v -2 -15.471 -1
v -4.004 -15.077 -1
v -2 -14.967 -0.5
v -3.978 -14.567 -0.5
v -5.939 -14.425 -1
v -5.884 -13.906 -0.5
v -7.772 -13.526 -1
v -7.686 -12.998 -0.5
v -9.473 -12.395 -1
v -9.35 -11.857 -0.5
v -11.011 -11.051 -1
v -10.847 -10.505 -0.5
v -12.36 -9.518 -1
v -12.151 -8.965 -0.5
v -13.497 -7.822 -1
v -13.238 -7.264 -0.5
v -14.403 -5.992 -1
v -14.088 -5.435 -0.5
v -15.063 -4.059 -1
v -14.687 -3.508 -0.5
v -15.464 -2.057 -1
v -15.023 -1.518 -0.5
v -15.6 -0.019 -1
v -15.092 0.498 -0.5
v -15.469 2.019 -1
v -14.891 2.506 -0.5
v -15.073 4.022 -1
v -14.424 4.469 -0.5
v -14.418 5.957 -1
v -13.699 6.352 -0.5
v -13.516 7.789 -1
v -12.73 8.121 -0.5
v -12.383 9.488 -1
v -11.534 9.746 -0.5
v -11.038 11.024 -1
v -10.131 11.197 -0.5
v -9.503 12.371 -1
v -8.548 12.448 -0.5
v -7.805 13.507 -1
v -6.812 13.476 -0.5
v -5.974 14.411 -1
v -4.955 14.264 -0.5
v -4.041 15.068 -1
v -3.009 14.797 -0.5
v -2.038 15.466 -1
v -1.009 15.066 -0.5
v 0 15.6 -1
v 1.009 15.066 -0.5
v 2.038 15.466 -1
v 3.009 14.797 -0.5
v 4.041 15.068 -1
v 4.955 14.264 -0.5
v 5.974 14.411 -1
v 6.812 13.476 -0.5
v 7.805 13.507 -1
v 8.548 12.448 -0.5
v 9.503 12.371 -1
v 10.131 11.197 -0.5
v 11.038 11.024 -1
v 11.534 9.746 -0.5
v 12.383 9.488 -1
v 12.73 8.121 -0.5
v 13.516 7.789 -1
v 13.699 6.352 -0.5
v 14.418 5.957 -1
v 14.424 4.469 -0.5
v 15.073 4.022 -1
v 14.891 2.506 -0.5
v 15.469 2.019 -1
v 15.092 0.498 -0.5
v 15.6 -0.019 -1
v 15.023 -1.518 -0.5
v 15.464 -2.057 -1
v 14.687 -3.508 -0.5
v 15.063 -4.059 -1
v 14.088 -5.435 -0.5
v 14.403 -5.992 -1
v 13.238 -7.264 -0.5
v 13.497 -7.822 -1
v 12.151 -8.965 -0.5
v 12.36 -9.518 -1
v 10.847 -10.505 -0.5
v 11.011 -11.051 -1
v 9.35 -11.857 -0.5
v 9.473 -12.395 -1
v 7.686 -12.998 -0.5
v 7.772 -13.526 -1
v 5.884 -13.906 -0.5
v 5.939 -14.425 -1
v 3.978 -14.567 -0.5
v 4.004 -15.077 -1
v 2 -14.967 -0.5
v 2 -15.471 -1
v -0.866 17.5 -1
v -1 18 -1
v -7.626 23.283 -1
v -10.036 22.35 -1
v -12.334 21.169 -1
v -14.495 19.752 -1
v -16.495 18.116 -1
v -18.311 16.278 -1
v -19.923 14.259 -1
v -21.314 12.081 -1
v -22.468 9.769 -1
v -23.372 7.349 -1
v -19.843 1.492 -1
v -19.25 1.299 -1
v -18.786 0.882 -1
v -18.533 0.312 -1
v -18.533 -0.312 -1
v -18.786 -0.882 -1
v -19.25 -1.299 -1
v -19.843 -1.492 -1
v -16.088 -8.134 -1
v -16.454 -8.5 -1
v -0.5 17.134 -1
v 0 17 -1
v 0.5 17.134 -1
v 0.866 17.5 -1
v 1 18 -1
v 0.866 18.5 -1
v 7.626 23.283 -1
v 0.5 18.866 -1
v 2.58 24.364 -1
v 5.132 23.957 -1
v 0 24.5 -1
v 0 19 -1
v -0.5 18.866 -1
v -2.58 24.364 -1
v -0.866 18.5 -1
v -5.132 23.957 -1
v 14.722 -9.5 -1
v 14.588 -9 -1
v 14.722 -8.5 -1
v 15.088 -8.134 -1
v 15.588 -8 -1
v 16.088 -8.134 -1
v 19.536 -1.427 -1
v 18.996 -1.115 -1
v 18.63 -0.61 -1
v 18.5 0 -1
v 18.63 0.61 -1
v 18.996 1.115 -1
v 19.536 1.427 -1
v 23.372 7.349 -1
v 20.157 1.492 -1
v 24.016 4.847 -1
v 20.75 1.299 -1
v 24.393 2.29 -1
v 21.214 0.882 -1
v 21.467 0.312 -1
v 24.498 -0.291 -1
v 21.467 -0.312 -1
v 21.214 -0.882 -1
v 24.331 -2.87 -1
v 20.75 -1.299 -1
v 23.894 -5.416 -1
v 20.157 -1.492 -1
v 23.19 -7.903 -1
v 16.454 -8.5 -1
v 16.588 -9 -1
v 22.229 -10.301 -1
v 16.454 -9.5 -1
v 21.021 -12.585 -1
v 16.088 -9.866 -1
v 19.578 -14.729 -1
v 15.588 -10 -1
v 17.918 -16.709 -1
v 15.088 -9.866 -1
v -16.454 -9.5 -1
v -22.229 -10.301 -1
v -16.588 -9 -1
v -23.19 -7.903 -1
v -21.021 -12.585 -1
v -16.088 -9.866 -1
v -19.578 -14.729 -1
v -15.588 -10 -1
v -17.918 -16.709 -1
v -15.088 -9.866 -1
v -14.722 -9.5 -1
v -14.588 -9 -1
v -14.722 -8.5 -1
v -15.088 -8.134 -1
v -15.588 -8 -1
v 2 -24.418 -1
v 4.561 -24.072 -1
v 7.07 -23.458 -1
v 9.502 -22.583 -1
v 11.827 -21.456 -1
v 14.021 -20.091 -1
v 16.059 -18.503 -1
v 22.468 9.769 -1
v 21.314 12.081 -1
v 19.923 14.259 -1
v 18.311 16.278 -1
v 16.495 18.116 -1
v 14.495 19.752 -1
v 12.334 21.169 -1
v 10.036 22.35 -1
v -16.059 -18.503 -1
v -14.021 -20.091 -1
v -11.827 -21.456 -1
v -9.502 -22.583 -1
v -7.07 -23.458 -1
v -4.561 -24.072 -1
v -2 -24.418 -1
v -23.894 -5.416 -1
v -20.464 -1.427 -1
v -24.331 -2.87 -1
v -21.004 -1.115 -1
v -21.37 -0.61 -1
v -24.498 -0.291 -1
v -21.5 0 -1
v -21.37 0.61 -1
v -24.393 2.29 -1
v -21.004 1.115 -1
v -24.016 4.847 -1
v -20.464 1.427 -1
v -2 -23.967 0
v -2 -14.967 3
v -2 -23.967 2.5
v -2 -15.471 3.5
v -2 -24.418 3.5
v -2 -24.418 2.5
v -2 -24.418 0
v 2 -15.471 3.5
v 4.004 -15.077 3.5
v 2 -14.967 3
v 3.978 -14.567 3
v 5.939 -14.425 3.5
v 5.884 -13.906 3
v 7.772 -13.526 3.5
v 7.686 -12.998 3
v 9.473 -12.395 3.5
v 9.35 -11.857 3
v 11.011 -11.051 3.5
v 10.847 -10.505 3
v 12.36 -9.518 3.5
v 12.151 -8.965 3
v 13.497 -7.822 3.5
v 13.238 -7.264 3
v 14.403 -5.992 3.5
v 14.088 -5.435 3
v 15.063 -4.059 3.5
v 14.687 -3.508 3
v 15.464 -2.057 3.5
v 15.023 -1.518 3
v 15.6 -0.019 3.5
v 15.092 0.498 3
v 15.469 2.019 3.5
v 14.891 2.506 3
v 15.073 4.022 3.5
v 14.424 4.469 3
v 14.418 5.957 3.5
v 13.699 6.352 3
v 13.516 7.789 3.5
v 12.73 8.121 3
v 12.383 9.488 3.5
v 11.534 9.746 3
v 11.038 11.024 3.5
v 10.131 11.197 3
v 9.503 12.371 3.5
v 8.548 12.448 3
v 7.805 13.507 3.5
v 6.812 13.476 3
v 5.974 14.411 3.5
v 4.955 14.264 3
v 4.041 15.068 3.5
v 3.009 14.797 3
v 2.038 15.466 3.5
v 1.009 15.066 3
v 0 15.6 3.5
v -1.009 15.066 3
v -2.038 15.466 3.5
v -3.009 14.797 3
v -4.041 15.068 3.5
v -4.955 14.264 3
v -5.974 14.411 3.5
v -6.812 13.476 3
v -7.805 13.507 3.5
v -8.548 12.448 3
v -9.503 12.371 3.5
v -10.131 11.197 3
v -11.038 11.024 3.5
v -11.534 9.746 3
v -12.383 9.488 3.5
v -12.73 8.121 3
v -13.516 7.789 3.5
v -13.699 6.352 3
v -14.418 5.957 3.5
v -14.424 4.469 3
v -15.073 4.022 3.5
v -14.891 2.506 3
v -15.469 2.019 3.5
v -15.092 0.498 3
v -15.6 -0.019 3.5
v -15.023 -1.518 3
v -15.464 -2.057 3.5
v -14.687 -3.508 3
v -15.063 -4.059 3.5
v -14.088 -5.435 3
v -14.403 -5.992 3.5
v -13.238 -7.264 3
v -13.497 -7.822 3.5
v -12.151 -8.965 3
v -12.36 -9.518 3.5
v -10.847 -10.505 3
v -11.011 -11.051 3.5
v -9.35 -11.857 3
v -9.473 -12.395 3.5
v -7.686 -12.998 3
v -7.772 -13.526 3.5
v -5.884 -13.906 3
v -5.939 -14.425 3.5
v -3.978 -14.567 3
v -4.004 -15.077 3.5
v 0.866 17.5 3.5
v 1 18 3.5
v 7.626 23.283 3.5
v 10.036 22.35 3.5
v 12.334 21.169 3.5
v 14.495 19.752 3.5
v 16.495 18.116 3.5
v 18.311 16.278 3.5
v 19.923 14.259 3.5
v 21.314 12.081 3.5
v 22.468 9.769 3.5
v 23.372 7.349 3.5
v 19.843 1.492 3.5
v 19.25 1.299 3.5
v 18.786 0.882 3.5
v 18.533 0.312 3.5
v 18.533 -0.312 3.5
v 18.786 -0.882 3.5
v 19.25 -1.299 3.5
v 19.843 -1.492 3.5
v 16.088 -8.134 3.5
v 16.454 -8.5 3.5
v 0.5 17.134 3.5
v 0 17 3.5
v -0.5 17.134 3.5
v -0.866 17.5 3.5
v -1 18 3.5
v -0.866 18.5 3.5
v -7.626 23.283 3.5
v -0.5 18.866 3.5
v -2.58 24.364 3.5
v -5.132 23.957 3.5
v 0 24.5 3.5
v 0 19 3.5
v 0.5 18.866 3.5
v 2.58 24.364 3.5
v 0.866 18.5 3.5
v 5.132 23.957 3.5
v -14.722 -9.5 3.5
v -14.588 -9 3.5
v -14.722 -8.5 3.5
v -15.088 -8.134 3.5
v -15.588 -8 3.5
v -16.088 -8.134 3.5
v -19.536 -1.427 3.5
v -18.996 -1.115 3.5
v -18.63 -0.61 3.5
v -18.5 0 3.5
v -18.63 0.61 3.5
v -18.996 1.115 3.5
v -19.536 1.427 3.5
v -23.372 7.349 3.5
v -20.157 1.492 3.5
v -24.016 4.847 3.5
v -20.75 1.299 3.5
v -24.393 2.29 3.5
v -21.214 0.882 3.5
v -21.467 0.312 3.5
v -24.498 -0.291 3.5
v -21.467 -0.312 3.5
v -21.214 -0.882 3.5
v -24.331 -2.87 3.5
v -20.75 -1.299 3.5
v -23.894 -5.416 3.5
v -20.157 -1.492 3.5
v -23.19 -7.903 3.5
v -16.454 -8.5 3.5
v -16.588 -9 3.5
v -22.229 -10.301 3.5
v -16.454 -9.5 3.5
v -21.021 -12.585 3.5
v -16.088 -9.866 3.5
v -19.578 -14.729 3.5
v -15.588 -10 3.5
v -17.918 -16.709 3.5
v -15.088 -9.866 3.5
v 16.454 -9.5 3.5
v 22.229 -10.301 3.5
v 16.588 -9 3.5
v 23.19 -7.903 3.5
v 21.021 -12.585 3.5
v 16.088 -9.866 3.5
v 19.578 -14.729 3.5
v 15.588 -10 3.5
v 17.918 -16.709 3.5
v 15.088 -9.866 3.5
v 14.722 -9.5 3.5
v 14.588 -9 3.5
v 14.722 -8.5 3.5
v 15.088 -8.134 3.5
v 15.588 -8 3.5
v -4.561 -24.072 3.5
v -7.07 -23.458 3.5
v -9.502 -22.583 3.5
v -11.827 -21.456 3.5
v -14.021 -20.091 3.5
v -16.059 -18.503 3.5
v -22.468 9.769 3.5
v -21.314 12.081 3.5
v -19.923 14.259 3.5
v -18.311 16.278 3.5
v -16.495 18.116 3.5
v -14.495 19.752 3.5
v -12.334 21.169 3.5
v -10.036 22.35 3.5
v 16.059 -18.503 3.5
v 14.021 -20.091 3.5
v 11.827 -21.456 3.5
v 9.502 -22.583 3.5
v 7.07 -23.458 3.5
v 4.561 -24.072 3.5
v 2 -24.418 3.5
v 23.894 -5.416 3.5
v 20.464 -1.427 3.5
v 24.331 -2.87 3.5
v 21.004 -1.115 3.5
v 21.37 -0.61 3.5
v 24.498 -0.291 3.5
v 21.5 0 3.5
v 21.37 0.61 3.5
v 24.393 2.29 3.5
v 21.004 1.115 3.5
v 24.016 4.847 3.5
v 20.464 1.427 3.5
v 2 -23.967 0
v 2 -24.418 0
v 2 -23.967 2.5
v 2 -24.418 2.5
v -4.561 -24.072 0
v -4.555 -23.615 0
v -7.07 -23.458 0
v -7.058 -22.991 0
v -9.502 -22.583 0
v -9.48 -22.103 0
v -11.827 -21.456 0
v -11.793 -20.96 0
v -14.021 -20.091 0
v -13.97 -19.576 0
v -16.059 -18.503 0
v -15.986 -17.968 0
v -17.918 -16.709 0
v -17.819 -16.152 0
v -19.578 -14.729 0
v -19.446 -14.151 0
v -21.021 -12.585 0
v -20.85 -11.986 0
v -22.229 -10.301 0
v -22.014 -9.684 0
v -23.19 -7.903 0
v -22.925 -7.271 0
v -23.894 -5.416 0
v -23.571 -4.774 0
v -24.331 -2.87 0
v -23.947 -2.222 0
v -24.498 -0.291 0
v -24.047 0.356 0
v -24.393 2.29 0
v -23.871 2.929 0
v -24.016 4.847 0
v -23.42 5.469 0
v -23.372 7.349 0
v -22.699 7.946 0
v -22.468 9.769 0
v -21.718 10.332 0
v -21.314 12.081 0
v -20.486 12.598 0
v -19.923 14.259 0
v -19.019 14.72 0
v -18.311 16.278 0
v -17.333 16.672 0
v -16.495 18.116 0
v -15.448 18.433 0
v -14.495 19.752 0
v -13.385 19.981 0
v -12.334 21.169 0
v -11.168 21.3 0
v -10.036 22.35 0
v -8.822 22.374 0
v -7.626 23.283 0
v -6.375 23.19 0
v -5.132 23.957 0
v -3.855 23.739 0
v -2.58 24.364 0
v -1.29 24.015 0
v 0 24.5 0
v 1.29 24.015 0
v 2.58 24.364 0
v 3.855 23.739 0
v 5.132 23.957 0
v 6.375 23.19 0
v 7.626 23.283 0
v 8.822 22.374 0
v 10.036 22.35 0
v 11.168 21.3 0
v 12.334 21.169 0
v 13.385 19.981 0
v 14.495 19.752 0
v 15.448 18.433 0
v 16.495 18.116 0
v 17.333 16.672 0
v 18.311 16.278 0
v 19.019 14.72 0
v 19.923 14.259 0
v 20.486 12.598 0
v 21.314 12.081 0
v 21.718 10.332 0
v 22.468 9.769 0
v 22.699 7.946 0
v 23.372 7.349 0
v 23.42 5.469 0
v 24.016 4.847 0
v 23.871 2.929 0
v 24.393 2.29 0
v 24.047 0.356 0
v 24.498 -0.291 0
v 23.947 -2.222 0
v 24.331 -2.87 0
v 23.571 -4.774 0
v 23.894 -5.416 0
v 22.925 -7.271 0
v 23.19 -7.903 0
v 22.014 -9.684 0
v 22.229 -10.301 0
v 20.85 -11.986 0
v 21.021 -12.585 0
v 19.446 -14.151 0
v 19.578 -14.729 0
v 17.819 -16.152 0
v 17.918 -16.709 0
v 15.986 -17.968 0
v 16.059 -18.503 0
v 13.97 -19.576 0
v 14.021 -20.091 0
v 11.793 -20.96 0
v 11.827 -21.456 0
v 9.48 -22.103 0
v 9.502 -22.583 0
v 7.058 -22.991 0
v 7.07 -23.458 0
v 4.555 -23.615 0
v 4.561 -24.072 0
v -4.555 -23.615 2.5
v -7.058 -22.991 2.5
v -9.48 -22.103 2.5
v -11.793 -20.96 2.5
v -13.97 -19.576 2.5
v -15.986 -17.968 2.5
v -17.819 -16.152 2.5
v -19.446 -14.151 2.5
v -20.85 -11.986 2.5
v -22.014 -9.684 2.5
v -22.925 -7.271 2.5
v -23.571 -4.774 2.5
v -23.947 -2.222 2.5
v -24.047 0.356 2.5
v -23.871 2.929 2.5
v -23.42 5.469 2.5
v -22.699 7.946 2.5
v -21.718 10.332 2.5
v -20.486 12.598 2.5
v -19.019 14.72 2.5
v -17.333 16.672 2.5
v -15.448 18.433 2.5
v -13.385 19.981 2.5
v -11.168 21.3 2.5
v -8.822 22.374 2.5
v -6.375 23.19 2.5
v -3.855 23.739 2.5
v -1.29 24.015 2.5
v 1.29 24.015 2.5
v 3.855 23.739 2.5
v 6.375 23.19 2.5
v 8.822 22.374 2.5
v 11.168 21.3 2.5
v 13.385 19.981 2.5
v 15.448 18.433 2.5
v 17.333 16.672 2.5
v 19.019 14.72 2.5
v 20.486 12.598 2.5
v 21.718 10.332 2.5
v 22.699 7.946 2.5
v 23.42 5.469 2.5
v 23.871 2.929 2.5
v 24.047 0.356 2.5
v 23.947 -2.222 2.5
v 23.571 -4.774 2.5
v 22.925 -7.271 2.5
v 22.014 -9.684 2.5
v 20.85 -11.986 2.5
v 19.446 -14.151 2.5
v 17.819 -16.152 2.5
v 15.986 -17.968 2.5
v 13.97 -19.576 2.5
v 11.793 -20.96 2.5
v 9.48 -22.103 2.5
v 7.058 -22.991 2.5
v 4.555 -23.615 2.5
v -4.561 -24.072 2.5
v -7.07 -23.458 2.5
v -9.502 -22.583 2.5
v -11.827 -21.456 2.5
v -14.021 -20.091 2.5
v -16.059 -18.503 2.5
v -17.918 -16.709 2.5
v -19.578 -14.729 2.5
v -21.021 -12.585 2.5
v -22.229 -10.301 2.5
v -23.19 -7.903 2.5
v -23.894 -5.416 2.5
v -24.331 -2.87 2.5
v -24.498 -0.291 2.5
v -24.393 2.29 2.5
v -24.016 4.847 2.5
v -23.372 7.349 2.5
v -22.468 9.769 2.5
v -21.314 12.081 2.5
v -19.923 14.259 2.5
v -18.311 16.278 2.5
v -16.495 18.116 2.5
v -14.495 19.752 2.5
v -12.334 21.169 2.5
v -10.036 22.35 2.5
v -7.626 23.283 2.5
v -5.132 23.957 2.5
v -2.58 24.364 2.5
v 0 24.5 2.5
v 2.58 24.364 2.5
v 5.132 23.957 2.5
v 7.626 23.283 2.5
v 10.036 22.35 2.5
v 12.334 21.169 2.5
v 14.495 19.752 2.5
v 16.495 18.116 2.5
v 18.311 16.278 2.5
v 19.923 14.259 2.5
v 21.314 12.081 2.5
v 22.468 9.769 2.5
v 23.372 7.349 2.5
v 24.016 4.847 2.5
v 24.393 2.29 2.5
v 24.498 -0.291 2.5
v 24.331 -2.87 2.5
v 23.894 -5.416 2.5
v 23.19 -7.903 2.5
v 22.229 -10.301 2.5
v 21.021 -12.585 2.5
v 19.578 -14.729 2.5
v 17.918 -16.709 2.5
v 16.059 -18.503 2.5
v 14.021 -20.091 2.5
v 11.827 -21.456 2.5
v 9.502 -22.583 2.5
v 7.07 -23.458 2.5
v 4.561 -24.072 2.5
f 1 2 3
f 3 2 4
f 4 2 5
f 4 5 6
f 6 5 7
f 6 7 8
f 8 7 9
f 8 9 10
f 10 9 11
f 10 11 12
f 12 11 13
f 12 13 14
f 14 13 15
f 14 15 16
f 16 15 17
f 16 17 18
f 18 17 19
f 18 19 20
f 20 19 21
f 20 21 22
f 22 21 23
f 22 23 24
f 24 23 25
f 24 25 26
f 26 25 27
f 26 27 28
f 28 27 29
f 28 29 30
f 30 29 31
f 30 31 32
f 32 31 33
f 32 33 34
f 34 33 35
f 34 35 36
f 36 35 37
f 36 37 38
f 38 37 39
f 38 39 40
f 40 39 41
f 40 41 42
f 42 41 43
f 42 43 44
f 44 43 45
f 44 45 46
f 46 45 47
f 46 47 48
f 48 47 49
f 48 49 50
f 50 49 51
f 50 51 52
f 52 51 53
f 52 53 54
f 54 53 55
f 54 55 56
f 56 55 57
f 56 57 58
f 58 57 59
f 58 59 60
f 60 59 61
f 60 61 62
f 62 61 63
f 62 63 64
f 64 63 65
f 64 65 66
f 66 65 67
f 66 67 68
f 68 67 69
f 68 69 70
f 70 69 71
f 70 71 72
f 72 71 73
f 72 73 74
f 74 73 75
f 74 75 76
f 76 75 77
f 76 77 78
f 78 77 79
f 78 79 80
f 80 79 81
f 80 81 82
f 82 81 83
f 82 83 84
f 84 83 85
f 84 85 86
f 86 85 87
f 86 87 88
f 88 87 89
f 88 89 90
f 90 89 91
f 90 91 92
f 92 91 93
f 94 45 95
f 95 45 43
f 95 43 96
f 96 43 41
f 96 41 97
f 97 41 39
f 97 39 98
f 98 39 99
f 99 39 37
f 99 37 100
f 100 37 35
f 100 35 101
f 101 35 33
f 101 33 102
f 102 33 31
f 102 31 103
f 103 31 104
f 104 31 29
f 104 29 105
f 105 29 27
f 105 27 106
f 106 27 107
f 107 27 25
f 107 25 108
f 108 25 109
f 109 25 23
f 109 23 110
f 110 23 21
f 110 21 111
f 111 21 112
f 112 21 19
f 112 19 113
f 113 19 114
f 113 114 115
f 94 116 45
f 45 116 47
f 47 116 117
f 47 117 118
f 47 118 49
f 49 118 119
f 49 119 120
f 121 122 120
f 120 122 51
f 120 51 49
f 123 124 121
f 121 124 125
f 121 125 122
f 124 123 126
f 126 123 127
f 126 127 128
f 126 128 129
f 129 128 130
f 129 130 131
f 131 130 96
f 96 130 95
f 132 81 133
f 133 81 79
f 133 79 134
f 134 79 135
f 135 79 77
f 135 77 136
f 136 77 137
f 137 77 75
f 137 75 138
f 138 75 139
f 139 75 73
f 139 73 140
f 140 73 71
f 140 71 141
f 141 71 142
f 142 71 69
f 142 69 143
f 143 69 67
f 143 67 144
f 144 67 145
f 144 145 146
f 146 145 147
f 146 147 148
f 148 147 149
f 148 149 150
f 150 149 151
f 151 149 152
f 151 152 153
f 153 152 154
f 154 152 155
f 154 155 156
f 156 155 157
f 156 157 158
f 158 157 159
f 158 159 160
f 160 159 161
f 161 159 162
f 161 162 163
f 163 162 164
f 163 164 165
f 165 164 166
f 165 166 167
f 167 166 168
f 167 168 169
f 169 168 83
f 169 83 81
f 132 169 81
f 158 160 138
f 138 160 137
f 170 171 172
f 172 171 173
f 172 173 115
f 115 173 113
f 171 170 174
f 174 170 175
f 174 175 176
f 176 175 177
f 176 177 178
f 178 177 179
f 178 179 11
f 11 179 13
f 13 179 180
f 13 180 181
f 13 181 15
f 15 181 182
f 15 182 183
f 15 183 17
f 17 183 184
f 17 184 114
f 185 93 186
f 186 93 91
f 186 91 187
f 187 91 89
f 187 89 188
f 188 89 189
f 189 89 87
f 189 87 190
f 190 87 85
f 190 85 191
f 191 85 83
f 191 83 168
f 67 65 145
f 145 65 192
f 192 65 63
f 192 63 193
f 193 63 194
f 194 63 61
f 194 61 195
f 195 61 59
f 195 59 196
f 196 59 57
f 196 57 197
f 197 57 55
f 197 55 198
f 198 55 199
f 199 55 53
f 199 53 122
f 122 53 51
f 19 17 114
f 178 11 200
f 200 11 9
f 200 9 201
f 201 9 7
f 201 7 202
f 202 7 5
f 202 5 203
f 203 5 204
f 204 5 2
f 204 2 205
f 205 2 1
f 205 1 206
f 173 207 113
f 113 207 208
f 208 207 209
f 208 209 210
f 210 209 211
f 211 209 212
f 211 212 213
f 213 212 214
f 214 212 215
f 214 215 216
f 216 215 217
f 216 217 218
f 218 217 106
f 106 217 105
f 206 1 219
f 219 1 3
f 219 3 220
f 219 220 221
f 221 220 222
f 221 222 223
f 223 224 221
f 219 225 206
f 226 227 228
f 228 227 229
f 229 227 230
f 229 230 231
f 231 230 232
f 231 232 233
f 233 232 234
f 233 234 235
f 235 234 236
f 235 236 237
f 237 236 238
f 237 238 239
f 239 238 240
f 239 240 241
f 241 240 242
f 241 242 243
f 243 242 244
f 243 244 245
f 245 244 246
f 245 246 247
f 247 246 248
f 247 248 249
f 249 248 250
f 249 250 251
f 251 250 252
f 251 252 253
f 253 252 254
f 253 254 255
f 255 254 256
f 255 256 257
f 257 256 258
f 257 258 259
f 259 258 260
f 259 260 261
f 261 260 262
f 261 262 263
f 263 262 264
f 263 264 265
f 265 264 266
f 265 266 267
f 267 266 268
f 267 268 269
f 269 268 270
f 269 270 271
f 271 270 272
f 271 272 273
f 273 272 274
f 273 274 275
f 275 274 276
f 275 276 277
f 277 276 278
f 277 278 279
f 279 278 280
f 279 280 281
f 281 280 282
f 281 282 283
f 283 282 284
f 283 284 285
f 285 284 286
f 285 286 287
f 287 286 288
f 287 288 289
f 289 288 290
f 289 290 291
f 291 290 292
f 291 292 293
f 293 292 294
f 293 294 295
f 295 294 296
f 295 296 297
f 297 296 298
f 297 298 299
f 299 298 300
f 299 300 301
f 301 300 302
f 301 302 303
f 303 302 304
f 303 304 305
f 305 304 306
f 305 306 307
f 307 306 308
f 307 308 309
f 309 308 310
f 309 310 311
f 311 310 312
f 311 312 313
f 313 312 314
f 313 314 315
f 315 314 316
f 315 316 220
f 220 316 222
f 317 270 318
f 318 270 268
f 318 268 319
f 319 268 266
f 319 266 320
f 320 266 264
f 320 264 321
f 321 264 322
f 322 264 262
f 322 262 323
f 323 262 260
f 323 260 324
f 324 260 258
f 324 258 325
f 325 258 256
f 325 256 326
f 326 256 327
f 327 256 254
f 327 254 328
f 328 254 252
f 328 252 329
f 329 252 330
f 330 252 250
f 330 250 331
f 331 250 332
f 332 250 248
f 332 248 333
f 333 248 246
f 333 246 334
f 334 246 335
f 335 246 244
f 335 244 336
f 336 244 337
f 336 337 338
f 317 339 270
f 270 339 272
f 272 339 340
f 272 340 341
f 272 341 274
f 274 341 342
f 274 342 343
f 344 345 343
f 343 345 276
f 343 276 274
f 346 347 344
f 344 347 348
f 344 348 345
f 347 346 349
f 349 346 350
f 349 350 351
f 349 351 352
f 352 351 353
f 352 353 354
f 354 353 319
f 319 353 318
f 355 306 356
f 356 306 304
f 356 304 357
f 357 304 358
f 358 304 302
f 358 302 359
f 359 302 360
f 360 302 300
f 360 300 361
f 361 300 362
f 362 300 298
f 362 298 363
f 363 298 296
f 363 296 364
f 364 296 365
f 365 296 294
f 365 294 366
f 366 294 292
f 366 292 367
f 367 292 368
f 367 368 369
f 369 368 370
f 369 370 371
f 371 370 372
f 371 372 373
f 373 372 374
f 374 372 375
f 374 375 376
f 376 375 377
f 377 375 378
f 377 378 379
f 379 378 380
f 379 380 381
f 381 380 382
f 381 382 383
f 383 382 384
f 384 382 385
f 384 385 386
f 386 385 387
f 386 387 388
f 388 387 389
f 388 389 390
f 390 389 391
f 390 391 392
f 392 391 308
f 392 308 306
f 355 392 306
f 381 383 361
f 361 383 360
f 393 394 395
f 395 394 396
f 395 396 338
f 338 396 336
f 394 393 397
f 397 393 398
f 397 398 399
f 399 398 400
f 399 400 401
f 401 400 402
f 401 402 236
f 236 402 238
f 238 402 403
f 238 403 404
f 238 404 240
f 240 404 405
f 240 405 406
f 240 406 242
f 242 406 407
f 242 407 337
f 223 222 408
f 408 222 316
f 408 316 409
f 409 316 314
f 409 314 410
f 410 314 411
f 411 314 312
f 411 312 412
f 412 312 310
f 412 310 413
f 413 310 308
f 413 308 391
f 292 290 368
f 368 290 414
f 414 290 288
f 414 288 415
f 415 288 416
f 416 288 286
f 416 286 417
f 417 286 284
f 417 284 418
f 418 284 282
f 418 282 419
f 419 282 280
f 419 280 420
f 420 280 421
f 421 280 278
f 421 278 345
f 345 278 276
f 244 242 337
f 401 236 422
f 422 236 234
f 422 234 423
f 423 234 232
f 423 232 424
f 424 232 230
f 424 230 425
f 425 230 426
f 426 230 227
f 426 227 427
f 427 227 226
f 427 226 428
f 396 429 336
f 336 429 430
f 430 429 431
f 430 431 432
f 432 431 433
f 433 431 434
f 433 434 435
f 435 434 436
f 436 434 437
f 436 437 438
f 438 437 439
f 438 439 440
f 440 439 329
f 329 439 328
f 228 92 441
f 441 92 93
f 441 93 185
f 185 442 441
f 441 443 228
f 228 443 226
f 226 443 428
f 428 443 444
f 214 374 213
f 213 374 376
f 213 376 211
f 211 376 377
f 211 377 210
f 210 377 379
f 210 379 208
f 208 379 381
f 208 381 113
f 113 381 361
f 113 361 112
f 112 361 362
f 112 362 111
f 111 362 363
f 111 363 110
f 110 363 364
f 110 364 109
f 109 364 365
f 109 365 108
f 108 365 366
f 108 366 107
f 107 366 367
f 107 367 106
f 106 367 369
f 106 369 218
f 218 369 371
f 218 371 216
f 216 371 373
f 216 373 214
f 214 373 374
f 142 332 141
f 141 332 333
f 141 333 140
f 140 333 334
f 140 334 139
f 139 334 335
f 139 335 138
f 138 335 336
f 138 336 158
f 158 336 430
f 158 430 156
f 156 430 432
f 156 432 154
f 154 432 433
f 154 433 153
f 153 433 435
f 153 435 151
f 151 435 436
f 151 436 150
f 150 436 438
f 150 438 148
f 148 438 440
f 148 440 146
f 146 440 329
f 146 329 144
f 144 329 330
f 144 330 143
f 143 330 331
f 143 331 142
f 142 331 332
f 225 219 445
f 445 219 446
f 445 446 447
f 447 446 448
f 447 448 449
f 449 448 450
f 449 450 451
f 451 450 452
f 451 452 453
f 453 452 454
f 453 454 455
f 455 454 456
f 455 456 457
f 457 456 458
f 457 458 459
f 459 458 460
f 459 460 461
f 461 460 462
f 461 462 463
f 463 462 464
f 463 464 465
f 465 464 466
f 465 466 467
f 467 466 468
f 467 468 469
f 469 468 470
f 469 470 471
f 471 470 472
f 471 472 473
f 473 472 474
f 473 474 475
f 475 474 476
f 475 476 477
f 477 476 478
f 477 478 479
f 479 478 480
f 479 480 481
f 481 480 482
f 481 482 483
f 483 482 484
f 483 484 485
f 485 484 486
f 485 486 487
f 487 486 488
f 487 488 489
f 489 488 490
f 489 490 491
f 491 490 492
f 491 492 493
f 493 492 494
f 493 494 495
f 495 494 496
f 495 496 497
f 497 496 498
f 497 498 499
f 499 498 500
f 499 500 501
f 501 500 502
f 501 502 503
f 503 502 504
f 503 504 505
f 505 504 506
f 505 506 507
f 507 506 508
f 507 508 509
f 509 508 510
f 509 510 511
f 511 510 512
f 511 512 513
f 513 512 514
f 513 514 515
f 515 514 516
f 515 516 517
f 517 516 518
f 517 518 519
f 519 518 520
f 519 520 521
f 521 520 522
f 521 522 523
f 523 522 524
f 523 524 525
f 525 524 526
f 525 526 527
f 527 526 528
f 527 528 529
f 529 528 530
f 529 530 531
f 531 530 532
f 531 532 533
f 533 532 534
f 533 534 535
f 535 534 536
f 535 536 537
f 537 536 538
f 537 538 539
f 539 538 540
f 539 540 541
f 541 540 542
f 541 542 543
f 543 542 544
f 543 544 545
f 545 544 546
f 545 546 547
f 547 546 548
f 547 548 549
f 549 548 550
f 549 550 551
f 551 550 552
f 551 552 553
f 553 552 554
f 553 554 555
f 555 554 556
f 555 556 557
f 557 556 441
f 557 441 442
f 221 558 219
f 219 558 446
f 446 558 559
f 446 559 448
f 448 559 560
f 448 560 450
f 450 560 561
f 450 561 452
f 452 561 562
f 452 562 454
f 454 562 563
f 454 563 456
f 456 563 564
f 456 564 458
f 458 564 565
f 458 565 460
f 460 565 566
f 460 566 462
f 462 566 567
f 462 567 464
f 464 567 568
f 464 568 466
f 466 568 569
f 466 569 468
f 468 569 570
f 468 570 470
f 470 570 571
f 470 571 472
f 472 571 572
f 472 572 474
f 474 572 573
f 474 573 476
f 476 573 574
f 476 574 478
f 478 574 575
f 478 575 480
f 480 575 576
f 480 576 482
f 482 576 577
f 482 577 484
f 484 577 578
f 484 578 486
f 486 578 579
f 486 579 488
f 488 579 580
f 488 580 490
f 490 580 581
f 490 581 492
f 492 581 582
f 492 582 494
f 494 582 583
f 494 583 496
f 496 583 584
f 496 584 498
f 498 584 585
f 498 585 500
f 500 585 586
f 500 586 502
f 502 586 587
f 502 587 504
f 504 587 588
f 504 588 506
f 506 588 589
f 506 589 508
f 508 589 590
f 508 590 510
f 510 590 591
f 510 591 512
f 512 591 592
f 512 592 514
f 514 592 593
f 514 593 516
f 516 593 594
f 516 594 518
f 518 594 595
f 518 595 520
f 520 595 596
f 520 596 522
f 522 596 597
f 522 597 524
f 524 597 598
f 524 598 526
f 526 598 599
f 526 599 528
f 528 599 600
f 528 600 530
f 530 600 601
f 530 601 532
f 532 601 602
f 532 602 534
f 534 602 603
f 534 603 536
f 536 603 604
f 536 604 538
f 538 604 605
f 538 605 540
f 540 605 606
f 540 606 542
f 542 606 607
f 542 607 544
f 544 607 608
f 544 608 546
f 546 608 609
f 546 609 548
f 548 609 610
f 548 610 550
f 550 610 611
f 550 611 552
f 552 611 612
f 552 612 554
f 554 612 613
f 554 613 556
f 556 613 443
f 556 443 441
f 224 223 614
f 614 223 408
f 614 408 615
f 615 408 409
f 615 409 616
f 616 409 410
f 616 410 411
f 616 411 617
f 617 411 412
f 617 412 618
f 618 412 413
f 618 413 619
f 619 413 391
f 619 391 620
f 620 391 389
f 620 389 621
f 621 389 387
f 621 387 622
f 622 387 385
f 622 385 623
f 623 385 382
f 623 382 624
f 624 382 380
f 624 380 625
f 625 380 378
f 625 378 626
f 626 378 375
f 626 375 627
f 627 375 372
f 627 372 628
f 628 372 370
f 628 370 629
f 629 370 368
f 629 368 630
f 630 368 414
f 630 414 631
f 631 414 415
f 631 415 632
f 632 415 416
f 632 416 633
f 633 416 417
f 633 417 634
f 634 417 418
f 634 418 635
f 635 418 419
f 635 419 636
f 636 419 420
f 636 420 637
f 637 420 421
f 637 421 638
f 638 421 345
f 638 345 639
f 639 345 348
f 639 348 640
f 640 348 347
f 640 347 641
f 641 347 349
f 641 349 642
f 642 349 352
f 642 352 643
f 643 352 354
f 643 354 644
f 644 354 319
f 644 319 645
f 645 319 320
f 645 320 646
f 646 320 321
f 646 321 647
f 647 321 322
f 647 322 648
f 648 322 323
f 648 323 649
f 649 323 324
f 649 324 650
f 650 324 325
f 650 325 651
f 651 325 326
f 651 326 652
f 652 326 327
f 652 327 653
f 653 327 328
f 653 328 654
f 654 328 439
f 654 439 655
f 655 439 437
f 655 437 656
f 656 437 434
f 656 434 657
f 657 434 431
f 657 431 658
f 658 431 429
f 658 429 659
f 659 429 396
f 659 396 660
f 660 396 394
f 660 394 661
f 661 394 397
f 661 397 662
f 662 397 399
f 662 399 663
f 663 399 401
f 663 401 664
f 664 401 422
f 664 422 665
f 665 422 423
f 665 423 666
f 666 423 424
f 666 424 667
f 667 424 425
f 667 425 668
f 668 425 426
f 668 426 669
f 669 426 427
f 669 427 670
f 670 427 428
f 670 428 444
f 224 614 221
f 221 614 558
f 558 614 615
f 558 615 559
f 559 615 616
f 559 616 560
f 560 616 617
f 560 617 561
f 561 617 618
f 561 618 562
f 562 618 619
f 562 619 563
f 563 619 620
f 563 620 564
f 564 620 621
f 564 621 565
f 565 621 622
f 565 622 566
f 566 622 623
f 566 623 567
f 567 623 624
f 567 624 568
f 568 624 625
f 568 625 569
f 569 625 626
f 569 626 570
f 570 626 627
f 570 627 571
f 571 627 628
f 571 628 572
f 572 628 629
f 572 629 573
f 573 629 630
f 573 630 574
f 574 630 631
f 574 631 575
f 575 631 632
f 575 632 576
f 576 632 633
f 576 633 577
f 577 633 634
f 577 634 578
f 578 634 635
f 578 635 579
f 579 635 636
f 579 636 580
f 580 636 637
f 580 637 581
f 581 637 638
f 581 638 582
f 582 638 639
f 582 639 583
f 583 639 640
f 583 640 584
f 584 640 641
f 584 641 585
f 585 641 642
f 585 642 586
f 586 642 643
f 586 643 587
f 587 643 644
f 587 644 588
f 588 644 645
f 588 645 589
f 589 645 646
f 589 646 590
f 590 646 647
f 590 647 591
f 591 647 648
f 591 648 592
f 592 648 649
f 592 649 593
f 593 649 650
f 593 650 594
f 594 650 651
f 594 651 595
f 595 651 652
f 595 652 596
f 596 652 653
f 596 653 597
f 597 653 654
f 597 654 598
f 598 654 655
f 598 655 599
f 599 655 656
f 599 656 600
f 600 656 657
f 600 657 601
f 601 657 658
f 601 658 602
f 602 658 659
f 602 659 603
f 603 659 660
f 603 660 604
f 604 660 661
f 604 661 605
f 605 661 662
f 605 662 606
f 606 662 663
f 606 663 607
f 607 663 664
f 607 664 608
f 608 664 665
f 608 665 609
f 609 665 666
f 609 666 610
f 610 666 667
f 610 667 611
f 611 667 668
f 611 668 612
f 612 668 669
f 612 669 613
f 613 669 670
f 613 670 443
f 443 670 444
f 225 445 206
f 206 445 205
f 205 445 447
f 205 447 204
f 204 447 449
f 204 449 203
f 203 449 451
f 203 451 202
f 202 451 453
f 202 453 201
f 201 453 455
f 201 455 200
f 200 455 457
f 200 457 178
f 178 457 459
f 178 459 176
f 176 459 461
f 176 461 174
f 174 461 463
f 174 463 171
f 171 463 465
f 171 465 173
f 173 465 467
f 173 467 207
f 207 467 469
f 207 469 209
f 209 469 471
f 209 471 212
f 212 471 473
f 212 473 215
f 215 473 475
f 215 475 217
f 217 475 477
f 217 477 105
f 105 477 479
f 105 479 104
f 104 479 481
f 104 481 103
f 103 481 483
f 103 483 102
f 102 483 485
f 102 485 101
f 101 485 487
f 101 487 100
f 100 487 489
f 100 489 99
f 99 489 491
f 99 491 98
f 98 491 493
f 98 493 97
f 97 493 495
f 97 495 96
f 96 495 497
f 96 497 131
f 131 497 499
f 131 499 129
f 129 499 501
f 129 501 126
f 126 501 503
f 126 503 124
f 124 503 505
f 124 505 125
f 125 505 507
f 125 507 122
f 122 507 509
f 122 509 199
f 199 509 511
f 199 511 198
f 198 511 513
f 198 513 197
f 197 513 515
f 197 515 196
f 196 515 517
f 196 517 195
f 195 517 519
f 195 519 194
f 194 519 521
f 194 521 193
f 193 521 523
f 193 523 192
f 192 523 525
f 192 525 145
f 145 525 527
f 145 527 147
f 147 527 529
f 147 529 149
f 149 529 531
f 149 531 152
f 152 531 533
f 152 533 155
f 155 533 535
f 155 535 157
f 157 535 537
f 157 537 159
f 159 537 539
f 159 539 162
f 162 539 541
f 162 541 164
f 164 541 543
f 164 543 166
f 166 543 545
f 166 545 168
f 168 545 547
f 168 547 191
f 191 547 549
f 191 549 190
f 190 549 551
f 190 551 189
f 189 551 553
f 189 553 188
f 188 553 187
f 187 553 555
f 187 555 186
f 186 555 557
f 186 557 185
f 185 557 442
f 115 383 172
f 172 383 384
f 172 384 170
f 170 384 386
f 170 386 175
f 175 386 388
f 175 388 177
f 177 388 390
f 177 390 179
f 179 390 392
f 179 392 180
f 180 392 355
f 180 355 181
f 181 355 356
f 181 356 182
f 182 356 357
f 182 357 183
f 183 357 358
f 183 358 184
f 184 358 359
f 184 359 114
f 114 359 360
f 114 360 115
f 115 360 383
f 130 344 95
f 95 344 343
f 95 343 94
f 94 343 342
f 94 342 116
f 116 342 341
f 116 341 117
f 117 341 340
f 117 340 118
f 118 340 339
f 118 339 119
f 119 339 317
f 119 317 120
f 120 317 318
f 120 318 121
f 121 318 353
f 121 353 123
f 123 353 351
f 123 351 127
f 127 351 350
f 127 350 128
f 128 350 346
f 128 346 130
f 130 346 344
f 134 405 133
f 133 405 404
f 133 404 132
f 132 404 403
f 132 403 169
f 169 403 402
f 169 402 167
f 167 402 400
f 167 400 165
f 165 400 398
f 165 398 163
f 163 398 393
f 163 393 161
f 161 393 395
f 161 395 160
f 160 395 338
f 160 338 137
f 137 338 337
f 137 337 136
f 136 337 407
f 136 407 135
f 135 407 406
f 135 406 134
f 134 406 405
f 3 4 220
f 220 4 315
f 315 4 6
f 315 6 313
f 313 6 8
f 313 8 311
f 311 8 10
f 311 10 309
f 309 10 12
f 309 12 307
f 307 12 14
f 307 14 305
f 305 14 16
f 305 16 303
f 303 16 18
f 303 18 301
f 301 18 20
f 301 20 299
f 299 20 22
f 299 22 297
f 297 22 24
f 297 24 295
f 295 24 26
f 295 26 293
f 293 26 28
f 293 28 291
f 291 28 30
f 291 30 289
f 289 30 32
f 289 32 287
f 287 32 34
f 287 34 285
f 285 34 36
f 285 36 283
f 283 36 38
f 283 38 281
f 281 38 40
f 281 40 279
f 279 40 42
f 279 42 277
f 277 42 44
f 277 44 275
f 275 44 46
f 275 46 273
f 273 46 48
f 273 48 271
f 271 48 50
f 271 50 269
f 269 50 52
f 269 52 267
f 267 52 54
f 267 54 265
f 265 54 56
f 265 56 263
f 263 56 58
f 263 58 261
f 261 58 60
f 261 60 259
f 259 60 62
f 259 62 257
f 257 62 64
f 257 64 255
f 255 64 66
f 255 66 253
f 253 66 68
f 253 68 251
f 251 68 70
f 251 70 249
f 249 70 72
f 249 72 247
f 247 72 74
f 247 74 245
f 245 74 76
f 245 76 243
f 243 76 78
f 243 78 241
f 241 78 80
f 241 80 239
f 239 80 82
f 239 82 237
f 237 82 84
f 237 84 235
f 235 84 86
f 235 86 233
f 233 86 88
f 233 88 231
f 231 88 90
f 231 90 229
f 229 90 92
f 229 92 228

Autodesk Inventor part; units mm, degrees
ref_plane "YZ Plane" through (0, 0, 0) normal (1, 0, 0) x (0, 1, 0)
ref_plane "XZ Plane" through (0, 0, 0) normal (0, 1, 0) x (-1, 0, 0)
ref_plane "XY Plane" through (0, 0, 0) normal (0, 0, 1) x (1, 0, 0)
sketch "Sketch1" plane through (0, 0, 0) normal (0, 0, 1) x (1, 0, 0)
  circle A0 centre (0, 0) radius 15.1
  circle A1 centre (0, 0) radius 24.05
  point P0 (0, 18)
  point P1 (-15.5885, -9)
  point P2 (15.5885, -9)
  dimension "D1" = 30.2
  dimension "d1" = 48.1
  dimension "d2" = 18
  dimension "d5" = 360
extrude "Extrusion1" add sketch "Sketch1" along normal blind 2.5
hole "Hole1" at (0, 18, 0) at (-15.5885, -9, 0) at (15.5885, -9, 0) direction (0, 0, 1) diameter 2 end through all
sketch "Sketch2" plane through (0, 0, 2.5) normal (0, 0, 1) x (1, 0, 0)
  circle A0 centre (0, 0) radius 24.5
  circle A1 centre (0, 18) radius 1 projected
  circle A2 centre (0, 0) radius 15.1 projected
  circle A3 centre (-15.5885, -9) radius 1 projected
  circle A4 centre (15.5885, -9) radius 1 projected
  dimension "d16" = 49
extrude "Extrusion2" add sketch "Sketch2" along normal blind 1
sketch "Sketch3" plane through (0, 0, 0) normal (0, 0, -1) x (-1, 0, 0)
  circle A0 centre (0, 0) radius 24.5
  circle A1 centre (0, 18) radius 1 projected
  circle A2 centre (0, 0) radius 15.1 projected
  circle A3 centre (-15.5885, -9) radius 1 projected
  circle A4 centre (15.5885, -9) radius 1 projected
  dimension "d21" = 49
extrude "Extrusion3" add sketch "Sketch3" along normal blind 1
sketch "Sketch4" plane through (0, 0, 3.5) normal (0, 0, 1) x (1, 0, 0)
  line L0 (2, -30.8109) -> (-2, -30.8109)
  line L1 (-2, -30.8109) -> (-2, -10.8109)
  line L2 (-2, -10.8109) -> (2, -10.8109)
  line L3 (2, -10.8109) -> (2, -30.8109)
  line L4 (2, -30.8109) -> (-2, -10.8109) construction
  line L5 (-2, -30.8109) -> (2, -10.8109) construction
  line L6 (0, -41.8731) -> (0, 35.5622) projected
  point P0 (0, 0)
  point P1 (0, -20.8109)
  dimension "d22" = 4
  dimension "d23" = 20
  dimension "d33" = 0
extrude "Extrusion4" cut sketch "Sketch4" against normal through all
sketch "Sketch5" plane through (0, 0, 3.5) normal (0, 0, 1) x (1, 0, 0)
  point P0 (0, 0)
  point P1 (-20, 0)
  point P2 (20, 0)
hole "Hole2" at (-20, 0, 3.5) at (20, 0, 3.5) direction (0, 0, -1) diameter 3 end through all
chamfer "Chamfer1" distance 0.5 angle 45 2 edges at (0, 15.1, 3.5) (0, 15.1, -1)
properties part number "Adapter-MitutoyoMT1-SM2-v4(flex)-forDLP"
